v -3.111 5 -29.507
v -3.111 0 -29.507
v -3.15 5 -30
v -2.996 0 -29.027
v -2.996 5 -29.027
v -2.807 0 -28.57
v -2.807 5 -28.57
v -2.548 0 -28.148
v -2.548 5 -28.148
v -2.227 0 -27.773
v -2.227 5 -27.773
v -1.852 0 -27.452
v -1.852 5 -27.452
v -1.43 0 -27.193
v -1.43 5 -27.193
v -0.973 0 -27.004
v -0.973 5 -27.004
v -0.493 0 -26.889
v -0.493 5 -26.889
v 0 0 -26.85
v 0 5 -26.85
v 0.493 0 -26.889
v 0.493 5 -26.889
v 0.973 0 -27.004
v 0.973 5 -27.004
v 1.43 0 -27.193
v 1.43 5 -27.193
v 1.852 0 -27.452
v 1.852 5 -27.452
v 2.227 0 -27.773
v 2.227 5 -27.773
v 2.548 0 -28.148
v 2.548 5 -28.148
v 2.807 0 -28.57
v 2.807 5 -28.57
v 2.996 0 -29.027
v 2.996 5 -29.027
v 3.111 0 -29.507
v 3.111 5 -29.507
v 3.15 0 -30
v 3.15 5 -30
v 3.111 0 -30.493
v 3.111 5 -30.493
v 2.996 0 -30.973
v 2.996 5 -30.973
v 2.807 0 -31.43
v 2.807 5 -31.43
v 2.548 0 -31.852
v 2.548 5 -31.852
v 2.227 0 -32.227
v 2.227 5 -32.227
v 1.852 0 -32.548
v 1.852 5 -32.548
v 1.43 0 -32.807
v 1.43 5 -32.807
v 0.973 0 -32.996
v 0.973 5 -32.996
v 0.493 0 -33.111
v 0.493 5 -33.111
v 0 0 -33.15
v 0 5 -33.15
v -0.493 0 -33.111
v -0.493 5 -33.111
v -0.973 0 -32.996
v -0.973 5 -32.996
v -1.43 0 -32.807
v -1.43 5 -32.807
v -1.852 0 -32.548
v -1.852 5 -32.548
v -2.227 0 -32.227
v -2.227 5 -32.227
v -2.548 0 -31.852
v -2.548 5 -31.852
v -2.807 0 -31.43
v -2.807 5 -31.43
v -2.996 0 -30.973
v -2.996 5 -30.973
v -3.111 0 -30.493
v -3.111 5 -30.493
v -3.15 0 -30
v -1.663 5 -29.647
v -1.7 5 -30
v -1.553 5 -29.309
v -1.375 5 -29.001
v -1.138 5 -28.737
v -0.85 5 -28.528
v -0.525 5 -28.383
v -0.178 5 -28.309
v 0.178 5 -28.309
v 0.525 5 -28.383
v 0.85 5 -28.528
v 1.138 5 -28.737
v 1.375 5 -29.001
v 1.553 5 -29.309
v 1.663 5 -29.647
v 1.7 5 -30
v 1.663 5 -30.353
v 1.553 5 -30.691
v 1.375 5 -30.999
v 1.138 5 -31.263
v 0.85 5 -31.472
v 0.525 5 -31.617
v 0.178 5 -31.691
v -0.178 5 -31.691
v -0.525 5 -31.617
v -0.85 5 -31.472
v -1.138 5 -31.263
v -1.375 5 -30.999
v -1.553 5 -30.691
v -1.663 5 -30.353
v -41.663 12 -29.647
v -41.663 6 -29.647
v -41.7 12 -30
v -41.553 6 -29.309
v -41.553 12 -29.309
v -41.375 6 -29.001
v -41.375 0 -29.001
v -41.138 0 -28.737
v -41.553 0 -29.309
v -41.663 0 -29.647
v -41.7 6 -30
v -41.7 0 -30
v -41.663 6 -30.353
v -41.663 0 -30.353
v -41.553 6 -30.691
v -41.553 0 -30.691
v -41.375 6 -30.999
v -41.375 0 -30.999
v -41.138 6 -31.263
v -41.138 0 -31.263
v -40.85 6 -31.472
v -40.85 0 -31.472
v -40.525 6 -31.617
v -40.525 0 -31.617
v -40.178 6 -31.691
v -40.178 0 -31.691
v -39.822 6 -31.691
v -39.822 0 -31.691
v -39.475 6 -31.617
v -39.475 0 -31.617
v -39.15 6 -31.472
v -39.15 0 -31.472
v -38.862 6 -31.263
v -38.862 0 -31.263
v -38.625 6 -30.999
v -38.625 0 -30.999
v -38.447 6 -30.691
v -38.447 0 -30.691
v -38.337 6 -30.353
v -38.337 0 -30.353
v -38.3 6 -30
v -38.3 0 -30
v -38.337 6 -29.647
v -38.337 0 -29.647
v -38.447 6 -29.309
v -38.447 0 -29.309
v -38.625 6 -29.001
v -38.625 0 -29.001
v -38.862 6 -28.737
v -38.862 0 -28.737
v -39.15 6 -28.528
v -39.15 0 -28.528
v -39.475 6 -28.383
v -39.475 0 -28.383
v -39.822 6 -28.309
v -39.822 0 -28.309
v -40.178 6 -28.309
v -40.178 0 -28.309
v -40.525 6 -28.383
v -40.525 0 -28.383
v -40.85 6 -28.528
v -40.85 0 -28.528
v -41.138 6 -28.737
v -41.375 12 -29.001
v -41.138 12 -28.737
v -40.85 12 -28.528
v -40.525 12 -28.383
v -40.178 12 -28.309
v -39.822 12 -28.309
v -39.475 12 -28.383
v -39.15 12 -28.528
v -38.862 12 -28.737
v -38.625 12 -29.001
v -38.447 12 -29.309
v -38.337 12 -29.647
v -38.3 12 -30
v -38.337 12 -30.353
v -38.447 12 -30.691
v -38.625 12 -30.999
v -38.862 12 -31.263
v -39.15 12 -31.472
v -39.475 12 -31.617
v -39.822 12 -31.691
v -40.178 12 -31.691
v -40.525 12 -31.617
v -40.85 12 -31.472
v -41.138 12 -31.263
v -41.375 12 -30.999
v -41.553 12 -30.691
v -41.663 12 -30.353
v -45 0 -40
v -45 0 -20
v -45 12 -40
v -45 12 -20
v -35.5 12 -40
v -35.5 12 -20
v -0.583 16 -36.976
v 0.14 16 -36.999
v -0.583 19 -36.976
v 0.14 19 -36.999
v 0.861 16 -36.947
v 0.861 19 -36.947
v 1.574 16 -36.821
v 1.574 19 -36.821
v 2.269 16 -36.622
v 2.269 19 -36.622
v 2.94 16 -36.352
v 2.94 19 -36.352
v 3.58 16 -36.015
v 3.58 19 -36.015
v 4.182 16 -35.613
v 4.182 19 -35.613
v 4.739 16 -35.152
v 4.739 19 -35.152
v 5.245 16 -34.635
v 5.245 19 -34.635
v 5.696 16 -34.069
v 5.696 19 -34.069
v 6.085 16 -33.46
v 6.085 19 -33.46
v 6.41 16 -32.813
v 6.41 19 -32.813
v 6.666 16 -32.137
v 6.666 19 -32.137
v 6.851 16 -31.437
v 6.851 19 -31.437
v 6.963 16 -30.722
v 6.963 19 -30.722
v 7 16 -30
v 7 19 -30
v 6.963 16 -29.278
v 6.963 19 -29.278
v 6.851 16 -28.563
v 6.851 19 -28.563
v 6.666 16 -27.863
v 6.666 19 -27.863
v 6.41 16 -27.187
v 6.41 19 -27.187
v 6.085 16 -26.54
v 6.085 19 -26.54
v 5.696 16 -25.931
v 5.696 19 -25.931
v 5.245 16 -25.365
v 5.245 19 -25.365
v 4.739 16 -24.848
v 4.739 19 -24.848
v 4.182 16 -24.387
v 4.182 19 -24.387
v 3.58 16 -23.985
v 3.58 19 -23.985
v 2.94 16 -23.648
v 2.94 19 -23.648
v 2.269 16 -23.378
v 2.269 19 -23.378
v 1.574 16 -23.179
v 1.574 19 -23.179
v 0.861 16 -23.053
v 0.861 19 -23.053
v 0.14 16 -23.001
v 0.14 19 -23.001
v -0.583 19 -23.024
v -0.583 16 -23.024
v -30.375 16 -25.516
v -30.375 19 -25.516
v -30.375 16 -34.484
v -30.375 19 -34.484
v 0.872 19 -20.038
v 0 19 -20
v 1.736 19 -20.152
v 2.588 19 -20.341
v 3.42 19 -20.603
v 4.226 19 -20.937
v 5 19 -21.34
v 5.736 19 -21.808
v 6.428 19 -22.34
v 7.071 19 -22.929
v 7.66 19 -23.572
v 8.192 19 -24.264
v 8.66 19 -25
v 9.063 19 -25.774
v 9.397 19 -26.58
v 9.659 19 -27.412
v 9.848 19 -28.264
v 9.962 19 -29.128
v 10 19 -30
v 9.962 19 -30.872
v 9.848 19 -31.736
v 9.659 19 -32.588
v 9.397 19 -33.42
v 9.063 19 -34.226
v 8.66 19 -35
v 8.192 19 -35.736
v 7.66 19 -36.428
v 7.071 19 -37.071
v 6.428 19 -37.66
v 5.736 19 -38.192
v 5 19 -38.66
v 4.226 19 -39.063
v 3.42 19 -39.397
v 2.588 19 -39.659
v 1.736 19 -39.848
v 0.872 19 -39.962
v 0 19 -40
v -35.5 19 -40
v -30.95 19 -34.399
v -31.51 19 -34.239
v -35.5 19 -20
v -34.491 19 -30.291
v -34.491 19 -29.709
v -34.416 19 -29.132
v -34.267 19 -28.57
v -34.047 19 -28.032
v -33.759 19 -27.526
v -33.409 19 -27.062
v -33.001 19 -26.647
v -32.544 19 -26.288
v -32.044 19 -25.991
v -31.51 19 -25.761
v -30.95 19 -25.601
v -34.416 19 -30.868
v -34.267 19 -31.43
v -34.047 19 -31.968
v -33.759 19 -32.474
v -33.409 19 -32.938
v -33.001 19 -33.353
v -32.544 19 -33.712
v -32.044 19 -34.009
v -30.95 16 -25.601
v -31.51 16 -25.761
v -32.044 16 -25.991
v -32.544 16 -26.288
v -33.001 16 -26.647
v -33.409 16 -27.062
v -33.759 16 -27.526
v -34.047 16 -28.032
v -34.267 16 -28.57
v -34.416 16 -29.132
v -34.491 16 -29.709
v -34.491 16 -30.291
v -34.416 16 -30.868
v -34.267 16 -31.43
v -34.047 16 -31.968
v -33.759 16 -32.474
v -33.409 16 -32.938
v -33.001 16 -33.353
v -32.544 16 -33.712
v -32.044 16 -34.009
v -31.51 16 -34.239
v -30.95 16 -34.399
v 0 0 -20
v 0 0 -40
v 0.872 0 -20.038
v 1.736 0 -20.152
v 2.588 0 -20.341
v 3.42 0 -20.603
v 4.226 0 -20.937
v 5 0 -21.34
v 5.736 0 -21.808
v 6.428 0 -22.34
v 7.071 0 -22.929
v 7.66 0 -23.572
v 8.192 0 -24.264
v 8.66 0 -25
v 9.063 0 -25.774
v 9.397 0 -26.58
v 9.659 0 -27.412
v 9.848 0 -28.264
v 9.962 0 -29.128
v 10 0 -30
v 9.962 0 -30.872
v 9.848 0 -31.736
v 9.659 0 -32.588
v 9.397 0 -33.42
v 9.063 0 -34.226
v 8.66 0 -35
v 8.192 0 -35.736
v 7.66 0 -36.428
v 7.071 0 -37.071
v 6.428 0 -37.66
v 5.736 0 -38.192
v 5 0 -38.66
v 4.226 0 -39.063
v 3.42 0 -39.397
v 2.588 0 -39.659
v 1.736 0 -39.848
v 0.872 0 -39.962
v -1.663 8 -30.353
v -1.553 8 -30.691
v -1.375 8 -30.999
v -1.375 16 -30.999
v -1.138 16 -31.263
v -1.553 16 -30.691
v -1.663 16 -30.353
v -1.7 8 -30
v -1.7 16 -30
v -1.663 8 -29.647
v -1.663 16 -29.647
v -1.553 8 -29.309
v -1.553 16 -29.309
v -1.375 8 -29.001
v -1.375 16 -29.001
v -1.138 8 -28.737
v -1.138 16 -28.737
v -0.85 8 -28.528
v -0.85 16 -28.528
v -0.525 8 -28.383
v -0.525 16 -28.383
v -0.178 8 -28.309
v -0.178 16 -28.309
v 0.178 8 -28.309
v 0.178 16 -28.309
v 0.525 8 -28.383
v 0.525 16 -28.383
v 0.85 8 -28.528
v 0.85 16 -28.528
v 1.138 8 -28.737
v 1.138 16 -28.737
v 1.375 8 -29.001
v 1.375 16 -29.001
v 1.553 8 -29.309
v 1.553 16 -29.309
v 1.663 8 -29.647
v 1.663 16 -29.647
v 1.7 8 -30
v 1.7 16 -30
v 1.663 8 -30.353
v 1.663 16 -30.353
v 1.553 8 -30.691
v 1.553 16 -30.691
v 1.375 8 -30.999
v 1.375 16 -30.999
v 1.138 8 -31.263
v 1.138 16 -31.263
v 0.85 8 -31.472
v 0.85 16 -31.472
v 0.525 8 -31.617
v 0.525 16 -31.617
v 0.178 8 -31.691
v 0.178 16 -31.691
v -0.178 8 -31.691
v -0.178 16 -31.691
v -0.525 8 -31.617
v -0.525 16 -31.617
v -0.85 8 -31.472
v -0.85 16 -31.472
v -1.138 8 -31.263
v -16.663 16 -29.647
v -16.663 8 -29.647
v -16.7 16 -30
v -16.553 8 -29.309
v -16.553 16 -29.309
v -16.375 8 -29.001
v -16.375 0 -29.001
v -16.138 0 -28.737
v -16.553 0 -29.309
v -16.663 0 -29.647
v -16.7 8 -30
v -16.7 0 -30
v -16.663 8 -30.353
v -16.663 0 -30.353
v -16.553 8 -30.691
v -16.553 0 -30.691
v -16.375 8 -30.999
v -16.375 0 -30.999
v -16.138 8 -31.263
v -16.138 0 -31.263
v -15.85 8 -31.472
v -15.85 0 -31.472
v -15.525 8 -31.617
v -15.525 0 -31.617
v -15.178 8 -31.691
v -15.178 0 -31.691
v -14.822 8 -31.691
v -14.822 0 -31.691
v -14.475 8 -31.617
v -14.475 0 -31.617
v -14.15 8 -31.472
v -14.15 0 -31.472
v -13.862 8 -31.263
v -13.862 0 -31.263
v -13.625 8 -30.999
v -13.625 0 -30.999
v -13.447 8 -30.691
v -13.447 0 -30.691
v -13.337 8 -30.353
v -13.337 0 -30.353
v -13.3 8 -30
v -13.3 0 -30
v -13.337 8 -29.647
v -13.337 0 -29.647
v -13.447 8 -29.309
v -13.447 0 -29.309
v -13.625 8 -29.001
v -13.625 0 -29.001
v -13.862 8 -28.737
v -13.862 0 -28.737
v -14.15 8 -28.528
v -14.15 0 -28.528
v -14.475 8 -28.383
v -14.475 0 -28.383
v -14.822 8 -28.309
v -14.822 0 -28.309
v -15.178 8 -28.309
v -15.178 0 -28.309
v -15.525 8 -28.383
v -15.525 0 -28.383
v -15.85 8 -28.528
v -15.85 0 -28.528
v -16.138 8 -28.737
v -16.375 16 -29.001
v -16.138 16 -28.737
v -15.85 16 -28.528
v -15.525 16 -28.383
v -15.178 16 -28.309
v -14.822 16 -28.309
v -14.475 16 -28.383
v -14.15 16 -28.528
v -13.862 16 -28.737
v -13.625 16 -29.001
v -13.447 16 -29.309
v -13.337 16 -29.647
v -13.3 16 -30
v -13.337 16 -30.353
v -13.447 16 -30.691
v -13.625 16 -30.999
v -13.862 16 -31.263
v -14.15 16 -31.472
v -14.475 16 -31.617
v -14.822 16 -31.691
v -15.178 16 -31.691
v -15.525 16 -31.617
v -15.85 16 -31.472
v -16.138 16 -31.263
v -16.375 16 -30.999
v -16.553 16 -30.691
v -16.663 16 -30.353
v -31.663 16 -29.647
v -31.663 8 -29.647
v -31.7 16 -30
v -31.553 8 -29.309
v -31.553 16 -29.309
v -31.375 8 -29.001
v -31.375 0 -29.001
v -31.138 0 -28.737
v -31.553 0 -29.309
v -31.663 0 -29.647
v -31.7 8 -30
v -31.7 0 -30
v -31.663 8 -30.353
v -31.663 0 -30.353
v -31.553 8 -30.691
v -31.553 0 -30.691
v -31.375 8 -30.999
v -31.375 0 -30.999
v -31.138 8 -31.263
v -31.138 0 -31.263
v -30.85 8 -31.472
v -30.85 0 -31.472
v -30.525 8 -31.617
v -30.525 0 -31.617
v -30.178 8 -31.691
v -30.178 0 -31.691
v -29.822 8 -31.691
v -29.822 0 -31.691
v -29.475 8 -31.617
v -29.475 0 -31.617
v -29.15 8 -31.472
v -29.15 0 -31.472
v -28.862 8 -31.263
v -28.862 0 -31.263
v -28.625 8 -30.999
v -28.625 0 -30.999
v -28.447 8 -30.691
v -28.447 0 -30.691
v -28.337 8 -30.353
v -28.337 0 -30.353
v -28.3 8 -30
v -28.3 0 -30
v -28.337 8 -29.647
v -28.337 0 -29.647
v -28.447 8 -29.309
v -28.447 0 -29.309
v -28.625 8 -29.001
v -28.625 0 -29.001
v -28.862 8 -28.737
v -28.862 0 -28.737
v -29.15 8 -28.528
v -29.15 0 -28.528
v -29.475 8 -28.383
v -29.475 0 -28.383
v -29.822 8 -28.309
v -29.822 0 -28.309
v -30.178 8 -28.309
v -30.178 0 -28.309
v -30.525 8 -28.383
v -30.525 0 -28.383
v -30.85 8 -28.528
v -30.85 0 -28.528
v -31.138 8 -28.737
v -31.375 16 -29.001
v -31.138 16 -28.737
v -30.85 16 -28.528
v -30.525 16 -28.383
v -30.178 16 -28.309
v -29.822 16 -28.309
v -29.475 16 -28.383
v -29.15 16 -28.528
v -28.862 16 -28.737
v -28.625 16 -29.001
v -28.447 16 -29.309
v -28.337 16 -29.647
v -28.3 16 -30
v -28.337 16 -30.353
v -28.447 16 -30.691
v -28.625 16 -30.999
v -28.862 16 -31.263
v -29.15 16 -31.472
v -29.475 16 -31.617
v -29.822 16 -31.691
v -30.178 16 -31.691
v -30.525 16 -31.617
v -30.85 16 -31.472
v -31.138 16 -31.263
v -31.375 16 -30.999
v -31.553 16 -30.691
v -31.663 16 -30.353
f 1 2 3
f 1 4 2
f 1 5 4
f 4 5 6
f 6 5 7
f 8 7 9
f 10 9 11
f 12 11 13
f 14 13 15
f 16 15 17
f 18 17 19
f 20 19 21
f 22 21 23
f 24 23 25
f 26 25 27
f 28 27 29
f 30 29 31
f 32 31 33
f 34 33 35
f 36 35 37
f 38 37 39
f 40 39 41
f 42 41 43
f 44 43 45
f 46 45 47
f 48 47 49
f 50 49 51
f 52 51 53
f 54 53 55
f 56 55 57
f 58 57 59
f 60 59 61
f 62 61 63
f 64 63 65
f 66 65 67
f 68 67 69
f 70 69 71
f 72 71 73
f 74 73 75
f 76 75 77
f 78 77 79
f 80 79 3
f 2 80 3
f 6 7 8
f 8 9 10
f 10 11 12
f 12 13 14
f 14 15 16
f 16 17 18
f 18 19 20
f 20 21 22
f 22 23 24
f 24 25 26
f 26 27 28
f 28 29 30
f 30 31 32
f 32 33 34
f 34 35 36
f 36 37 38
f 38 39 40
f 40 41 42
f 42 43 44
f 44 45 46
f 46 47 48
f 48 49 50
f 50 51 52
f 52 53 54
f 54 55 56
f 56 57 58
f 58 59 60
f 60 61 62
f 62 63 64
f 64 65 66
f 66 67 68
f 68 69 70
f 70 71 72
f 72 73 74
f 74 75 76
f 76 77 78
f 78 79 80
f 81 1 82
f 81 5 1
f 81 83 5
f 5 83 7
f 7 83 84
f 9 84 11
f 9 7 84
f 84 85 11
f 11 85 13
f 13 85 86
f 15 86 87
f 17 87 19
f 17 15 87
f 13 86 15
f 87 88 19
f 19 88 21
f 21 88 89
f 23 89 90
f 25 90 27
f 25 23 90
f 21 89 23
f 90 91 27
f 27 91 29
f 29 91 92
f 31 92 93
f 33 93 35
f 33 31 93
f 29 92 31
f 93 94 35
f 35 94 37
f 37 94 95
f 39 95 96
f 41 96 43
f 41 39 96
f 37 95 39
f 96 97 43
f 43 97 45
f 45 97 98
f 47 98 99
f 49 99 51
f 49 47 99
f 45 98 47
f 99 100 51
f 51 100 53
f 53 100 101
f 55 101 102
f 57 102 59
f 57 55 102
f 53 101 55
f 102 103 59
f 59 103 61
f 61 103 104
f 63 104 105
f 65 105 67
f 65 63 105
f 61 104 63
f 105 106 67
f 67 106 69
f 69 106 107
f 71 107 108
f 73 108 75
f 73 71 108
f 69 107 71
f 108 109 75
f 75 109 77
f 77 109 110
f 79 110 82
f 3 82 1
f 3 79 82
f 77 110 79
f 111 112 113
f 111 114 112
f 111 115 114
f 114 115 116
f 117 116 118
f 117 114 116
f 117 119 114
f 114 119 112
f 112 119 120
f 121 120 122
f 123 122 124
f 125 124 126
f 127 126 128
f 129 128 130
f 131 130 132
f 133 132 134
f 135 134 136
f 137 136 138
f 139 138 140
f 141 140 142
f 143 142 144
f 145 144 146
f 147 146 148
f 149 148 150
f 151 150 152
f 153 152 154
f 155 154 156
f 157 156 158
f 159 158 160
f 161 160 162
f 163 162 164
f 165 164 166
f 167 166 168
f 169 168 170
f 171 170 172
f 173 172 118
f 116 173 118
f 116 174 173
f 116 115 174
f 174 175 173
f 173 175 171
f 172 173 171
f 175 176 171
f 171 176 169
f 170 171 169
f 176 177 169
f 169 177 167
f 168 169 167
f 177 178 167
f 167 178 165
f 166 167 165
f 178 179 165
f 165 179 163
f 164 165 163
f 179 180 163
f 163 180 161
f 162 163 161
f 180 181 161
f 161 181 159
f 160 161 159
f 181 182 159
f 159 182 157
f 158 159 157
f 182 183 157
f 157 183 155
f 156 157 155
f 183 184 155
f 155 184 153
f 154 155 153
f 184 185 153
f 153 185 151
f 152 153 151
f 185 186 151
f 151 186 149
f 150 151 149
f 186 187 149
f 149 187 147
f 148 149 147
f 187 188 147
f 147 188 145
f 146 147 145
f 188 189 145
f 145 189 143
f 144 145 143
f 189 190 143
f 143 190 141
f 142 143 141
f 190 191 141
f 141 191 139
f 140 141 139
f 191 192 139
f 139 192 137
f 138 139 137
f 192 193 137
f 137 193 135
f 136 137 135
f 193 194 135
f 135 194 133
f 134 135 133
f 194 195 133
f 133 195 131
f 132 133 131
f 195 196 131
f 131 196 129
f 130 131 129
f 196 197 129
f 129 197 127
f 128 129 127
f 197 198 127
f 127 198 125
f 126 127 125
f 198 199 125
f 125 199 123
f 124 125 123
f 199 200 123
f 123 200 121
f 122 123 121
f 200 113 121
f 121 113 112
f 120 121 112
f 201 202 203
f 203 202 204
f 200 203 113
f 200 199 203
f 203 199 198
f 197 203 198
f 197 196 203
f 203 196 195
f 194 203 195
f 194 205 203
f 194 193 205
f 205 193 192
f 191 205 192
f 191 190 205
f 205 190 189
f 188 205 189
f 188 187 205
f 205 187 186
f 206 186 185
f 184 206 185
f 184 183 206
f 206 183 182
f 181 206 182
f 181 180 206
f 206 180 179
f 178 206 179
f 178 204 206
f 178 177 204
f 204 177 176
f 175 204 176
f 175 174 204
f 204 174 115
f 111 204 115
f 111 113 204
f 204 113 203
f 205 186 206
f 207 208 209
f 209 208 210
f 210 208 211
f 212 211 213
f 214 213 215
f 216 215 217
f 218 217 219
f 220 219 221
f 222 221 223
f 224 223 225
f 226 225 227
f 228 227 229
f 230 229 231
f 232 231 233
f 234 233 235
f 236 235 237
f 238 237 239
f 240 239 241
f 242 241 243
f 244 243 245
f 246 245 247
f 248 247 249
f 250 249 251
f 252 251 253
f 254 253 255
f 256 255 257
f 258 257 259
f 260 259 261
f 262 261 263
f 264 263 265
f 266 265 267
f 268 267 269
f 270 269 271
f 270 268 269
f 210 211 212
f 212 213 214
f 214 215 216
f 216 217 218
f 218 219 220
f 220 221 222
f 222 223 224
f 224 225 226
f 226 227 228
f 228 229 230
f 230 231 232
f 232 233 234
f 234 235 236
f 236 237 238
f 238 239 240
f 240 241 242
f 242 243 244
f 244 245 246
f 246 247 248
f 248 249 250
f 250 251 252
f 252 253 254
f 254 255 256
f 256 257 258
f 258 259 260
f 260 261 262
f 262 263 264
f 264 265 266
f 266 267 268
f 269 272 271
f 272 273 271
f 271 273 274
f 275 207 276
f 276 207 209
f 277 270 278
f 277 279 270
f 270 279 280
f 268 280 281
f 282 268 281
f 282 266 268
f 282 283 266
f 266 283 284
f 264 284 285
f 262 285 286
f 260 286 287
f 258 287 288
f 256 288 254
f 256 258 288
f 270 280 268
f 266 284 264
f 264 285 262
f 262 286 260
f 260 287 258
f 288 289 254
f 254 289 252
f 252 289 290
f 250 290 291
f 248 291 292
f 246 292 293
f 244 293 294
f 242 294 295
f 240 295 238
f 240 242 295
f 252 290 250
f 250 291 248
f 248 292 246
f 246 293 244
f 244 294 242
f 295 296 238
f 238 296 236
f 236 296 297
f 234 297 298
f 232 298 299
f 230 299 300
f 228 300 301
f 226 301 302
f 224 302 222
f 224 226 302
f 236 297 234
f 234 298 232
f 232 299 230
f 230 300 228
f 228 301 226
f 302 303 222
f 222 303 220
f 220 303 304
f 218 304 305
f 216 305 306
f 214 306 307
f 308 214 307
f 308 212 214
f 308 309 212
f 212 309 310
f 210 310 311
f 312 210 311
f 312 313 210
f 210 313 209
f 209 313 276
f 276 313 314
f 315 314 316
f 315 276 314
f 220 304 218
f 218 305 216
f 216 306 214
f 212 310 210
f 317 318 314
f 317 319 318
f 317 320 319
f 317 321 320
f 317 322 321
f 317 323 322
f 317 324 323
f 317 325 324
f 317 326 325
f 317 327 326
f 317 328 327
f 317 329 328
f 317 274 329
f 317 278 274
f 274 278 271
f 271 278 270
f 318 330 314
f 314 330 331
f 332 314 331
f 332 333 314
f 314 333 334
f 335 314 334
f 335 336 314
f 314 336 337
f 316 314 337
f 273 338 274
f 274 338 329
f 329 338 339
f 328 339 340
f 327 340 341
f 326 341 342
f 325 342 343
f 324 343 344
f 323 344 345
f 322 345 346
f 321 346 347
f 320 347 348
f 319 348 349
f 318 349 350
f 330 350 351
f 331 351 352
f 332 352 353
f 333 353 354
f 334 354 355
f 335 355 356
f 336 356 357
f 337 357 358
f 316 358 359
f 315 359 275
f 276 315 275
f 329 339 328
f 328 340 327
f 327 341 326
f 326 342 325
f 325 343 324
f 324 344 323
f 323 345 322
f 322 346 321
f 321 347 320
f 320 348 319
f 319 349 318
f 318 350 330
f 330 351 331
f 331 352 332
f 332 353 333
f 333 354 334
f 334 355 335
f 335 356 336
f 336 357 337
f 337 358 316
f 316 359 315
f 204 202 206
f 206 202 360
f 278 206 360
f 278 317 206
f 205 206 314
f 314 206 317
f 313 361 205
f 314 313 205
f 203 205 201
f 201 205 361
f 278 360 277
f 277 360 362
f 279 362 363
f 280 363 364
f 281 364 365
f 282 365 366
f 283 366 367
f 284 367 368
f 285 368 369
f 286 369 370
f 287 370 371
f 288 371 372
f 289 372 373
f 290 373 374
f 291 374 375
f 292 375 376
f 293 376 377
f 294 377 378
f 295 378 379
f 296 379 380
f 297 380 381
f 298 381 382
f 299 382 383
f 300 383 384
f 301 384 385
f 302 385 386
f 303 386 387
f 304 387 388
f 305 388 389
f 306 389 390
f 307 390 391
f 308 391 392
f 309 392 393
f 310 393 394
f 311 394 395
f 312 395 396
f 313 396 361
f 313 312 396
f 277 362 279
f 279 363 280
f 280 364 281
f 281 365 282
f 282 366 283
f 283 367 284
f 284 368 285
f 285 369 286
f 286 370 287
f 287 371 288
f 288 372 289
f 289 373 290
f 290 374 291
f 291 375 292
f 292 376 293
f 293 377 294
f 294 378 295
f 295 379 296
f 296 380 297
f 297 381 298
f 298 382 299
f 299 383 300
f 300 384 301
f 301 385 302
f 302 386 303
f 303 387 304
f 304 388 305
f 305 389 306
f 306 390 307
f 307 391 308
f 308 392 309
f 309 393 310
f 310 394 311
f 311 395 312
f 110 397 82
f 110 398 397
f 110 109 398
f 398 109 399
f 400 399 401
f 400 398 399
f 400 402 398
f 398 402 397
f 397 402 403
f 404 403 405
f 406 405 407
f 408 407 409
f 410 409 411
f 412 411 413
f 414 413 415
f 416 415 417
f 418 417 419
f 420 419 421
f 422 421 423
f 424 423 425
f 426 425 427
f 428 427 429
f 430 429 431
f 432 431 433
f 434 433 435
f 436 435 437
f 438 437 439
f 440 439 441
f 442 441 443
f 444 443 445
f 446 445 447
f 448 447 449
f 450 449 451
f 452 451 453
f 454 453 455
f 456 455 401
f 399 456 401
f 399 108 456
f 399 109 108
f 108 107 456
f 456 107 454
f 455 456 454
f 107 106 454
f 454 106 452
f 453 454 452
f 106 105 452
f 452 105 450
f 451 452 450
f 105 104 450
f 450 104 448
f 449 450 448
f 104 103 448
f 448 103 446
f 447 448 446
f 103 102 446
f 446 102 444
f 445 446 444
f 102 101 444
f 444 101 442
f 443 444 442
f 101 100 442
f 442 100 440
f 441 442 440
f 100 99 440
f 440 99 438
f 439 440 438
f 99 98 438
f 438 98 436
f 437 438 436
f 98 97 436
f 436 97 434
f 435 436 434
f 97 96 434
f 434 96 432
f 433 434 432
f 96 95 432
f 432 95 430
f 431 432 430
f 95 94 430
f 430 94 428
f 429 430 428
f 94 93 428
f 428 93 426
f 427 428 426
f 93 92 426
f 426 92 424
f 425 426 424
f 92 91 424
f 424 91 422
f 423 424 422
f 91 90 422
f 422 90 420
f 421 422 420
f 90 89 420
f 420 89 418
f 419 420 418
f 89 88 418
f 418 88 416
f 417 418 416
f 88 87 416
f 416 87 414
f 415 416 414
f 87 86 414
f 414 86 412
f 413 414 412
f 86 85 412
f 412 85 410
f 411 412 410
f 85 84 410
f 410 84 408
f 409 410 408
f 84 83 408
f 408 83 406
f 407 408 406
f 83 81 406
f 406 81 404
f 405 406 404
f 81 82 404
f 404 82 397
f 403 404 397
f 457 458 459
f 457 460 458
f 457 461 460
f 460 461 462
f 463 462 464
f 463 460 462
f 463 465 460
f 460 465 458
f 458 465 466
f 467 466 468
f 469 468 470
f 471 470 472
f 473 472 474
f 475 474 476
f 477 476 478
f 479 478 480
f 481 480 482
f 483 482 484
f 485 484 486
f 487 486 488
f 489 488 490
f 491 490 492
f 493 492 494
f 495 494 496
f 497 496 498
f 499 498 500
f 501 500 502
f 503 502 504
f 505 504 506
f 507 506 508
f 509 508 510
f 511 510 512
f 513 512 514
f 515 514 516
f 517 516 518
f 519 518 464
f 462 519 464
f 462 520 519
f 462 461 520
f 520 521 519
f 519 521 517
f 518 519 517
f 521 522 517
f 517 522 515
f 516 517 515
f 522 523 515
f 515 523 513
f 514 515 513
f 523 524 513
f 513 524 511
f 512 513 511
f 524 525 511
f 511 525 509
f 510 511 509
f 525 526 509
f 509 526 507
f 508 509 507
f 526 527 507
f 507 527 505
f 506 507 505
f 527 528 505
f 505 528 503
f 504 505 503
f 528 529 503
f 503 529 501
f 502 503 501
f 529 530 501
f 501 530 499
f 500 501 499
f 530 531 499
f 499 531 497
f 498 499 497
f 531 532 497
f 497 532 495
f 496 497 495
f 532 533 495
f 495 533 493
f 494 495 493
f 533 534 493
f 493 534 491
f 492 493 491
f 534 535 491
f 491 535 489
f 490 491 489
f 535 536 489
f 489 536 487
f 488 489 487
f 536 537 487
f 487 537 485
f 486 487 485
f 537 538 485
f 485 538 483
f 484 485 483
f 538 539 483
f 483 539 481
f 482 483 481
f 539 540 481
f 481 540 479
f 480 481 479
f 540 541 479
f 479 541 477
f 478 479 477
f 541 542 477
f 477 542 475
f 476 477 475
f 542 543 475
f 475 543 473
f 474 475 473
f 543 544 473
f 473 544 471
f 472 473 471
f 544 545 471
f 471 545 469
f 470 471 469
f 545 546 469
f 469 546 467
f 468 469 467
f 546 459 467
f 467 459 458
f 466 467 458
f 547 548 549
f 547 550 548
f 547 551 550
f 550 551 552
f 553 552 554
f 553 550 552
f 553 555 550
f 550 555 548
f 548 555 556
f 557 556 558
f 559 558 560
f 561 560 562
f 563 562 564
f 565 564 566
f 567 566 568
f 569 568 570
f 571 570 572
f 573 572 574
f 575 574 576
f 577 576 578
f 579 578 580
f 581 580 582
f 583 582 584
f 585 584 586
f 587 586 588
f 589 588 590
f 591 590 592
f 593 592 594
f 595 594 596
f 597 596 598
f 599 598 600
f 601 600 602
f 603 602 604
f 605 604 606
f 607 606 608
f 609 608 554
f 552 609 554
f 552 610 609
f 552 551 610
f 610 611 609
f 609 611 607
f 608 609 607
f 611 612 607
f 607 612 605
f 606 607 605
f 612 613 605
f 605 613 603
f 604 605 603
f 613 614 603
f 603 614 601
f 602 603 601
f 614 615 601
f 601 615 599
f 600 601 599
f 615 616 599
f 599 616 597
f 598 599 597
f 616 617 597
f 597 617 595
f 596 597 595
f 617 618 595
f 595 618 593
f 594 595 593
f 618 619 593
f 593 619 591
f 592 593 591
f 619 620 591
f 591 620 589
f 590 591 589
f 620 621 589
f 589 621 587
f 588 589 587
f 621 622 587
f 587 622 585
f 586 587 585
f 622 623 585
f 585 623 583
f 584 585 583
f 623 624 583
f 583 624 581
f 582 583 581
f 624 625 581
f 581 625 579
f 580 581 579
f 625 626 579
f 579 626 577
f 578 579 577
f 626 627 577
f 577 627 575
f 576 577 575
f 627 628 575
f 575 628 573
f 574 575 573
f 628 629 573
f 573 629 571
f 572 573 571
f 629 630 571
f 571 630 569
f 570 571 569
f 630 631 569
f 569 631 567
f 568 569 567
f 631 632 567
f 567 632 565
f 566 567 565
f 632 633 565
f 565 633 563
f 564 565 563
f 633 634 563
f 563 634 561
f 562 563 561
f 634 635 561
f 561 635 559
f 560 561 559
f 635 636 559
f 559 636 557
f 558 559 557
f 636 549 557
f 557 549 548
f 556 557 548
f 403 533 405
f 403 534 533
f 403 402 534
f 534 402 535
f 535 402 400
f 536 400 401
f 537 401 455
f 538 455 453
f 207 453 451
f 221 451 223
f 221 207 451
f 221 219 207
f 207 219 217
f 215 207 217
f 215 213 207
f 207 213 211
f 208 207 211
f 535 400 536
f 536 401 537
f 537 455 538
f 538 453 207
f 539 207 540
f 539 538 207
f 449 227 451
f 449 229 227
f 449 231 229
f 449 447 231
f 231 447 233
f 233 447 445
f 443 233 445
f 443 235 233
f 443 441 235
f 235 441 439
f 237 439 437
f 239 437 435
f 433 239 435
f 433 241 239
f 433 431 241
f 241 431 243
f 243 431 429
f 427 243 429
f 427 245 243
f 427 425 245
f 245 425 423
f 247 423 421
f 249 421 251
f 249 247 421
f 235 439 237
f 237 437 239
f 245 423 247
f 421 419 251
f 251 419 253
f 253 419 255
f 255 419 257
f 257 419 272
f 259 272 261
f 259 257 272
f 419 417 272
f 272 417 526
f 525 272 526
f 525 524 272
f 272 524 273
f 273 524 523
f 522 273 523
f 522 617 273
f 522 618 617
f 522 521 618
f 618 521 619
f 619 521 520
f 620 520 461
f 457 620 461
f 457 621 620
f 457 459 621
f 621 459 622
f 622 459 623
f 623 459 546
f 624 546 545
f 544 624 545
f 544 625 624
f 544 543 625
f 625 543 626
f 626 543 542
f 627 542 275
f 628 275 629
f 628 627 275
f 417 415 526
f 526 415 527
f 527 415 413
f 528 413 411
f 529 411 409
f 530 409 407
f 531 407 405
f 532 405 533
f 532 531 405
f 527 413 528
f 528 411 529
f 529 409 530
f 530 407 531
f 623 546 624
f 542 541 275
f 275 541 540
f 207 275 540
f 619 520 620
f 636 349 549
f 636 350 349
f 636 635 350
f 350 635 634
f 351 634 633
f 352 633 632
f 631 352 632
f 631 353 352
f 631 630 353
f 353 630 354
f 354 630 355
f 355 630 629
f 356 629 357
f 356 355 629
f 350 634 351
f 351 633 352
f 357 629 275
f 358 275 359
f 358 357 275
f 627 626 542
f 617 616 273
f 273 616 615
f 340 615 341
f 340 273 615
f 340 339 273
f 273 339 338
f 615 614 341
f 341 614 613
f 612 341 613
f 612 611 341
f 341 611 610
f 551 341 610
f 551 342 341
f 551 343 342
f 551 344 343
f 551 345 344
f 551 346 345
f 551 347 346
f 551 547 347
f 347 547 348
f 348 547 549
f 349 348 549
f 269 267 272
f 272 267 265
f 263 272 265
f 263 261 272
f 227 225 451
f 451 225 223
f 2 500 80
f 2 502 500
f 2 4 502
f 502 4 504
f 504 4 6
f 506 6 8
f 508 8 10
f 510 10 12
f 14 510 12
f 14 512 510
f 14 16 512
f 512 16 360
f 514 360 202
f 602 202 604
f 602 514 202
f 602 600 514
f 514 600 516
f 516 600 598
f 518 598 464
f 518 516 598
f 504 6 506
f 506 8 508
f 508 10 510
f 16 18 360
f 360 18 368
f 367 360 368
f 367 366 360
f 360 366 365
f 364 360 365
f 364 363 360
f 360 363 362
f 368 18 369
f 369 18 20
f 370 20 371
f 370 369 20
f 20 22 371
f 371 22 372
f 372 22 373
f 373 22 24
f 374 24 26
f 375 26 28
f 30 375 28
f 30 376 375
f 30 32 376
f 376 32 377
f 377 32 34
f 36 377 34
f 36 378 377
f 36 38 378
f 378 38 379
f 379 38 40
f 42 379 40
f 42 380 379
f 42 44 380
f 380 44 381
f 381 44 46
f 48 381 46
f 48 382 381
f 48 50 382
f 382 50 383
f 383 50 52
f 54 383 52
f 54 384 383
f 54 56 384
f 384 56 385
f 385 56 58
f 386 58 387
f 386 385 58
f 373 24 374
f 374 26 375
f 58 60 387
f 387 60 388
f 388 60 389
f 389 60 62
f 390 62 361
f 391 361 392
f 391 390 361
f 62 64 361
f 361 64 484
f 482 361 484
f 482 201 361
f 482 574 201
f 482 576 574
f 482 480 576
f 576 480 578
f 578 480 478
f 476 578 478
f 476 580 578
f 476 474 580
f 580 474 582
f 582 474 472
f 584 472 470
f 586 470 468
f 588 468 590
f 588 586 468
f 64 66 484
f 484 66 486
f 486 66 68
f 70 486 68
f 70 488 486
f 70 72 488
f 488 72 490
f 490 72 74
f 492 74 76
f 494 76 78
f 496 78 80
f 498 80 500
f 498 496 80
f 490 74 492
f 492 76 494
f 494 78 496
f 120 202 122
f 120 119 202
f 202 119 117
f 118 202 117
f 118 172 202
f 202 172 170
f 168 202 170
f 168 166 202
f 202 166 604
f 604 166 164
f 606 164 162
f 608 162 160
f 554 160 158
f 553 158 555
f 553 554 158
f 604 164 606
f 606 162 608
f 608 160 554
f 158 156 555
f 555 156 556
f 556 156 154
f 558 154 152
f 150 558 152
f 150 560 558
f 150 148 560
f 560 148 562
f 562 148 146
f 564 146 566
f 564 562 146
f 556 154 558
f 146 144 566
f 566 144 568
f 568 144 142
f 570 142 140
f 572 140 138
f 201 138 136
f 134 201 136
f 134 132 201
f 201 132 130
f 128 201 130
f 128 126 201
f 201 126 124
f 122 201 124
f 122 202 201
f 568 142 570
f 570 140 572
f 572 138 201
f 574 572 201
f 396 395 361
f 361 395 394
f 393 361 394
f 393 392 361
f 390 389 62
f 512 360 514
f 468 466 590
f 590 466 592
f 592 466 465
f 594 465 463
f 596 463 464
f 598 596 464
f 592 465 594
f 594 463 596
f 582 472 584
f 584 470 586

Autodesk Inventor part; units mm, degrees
ref_plane "YZ Plane" through (0, 0, 0) normal (1, 0, 0) x (0, 1, 0)
ref_plane "XZ Plane" through (0, 0, 0) normal (0, 1, 0) x (-1, 0, 0)
ref_plane "XY Plane" through (0, 0, 0) normal (0, 0, 1) x (1, 0, 0)
sketch "Sketch1" plane through (0, 0, 0) normal (0, 1, 0) x (-1, 0, 0)
  line L0 (0, 0) -> (0, -16)
  line L1 (0, 0) -> (0, -30)
  line L2 (0, -16) -> (0, -20)
  line L3 (0, -16) -> (50, -16)
  line L4 (50, -16) -> (50, 0)
  line L5 (50, 0) -> (0, 0)
  line L6 (50, -20) -> (50, -16)
  arc A0 (0.5833, -23.0243) -> (0.5833, -36.9757) centre (0, -30) ccw
  line L7 (0, -30) -> (30, -30)
  circle A1 centre (30, -30) radius 4.5
  line L8 (30.375, -25.5157) -> (0.5833, -23.0243)
  line L9 (30.375, -34.4843) -> (0.5833, -36.9757)
  line L10 (0, -40) -> (45, -40)
  line L11 (45, -40) -> (45, -20)
  line L12 (45, -20) -> (0, -20)
  circle A2 centre (30, -30) radius 1.7
  circle A3 centre (15, -30) radius 1.7
  line L13 (45, -30) -> (40, -30)
  circle A4 centre (40, -30) radius 1.7
  circle A5 centre (0, -30) radius 3.15
  circle A6 centre (0, -30) radius 1.7
  line L14 (45, -20) -> (0, -20)
  line L15 (45, -20) -> (35.5, -20)
  line L16 (35.5, -20) -> (35.5, -40)
  arc A7 (0, -20) -> (0, -40) centre (0, -30) ccw
  dimension "d0" = 16
  dimension "d1" = 30
  dimension "d2" = 4
  dimension "d3" = 50
  dimension "d4" = 50
  dimension "d22" = 14
  dimension "d23" = 30
  dimension "d24" = 9
  dimension "d26" = 45
  dimension "d29" = 3.4
  dimension "d30" = 3.4
  dimension "d31" = 5
  dimension "d32" = 3.4
  dimension "d34" = 6.3
  dimension "d35" = 3.4
  dimension "d36" = 9.5
extrude "Extrusion4" add sketch "Sketch1" along normal blind 16 contours A0 L8 A1 L7 A3 A5 L1 | L1 A5 L7 A3 A1 L9 A0 | A5 L7 A6 L1 | L1 A6 L7 A5 | A1
extrude "Extrusion5" add sketch "Sketch1" along normal blind 19 contours L12 L16 L10 A7
extrude "Extrusion6" add sketch "Sketch1" along normal blind 12 contours L12 L11 L10 L16
extrude "Extrusion7" cut sketch "Sketch1" along normal blind 5 contours A5 L7 A6 L1 | L1 A6 L7 A5
properties part number "servo_clip1"
